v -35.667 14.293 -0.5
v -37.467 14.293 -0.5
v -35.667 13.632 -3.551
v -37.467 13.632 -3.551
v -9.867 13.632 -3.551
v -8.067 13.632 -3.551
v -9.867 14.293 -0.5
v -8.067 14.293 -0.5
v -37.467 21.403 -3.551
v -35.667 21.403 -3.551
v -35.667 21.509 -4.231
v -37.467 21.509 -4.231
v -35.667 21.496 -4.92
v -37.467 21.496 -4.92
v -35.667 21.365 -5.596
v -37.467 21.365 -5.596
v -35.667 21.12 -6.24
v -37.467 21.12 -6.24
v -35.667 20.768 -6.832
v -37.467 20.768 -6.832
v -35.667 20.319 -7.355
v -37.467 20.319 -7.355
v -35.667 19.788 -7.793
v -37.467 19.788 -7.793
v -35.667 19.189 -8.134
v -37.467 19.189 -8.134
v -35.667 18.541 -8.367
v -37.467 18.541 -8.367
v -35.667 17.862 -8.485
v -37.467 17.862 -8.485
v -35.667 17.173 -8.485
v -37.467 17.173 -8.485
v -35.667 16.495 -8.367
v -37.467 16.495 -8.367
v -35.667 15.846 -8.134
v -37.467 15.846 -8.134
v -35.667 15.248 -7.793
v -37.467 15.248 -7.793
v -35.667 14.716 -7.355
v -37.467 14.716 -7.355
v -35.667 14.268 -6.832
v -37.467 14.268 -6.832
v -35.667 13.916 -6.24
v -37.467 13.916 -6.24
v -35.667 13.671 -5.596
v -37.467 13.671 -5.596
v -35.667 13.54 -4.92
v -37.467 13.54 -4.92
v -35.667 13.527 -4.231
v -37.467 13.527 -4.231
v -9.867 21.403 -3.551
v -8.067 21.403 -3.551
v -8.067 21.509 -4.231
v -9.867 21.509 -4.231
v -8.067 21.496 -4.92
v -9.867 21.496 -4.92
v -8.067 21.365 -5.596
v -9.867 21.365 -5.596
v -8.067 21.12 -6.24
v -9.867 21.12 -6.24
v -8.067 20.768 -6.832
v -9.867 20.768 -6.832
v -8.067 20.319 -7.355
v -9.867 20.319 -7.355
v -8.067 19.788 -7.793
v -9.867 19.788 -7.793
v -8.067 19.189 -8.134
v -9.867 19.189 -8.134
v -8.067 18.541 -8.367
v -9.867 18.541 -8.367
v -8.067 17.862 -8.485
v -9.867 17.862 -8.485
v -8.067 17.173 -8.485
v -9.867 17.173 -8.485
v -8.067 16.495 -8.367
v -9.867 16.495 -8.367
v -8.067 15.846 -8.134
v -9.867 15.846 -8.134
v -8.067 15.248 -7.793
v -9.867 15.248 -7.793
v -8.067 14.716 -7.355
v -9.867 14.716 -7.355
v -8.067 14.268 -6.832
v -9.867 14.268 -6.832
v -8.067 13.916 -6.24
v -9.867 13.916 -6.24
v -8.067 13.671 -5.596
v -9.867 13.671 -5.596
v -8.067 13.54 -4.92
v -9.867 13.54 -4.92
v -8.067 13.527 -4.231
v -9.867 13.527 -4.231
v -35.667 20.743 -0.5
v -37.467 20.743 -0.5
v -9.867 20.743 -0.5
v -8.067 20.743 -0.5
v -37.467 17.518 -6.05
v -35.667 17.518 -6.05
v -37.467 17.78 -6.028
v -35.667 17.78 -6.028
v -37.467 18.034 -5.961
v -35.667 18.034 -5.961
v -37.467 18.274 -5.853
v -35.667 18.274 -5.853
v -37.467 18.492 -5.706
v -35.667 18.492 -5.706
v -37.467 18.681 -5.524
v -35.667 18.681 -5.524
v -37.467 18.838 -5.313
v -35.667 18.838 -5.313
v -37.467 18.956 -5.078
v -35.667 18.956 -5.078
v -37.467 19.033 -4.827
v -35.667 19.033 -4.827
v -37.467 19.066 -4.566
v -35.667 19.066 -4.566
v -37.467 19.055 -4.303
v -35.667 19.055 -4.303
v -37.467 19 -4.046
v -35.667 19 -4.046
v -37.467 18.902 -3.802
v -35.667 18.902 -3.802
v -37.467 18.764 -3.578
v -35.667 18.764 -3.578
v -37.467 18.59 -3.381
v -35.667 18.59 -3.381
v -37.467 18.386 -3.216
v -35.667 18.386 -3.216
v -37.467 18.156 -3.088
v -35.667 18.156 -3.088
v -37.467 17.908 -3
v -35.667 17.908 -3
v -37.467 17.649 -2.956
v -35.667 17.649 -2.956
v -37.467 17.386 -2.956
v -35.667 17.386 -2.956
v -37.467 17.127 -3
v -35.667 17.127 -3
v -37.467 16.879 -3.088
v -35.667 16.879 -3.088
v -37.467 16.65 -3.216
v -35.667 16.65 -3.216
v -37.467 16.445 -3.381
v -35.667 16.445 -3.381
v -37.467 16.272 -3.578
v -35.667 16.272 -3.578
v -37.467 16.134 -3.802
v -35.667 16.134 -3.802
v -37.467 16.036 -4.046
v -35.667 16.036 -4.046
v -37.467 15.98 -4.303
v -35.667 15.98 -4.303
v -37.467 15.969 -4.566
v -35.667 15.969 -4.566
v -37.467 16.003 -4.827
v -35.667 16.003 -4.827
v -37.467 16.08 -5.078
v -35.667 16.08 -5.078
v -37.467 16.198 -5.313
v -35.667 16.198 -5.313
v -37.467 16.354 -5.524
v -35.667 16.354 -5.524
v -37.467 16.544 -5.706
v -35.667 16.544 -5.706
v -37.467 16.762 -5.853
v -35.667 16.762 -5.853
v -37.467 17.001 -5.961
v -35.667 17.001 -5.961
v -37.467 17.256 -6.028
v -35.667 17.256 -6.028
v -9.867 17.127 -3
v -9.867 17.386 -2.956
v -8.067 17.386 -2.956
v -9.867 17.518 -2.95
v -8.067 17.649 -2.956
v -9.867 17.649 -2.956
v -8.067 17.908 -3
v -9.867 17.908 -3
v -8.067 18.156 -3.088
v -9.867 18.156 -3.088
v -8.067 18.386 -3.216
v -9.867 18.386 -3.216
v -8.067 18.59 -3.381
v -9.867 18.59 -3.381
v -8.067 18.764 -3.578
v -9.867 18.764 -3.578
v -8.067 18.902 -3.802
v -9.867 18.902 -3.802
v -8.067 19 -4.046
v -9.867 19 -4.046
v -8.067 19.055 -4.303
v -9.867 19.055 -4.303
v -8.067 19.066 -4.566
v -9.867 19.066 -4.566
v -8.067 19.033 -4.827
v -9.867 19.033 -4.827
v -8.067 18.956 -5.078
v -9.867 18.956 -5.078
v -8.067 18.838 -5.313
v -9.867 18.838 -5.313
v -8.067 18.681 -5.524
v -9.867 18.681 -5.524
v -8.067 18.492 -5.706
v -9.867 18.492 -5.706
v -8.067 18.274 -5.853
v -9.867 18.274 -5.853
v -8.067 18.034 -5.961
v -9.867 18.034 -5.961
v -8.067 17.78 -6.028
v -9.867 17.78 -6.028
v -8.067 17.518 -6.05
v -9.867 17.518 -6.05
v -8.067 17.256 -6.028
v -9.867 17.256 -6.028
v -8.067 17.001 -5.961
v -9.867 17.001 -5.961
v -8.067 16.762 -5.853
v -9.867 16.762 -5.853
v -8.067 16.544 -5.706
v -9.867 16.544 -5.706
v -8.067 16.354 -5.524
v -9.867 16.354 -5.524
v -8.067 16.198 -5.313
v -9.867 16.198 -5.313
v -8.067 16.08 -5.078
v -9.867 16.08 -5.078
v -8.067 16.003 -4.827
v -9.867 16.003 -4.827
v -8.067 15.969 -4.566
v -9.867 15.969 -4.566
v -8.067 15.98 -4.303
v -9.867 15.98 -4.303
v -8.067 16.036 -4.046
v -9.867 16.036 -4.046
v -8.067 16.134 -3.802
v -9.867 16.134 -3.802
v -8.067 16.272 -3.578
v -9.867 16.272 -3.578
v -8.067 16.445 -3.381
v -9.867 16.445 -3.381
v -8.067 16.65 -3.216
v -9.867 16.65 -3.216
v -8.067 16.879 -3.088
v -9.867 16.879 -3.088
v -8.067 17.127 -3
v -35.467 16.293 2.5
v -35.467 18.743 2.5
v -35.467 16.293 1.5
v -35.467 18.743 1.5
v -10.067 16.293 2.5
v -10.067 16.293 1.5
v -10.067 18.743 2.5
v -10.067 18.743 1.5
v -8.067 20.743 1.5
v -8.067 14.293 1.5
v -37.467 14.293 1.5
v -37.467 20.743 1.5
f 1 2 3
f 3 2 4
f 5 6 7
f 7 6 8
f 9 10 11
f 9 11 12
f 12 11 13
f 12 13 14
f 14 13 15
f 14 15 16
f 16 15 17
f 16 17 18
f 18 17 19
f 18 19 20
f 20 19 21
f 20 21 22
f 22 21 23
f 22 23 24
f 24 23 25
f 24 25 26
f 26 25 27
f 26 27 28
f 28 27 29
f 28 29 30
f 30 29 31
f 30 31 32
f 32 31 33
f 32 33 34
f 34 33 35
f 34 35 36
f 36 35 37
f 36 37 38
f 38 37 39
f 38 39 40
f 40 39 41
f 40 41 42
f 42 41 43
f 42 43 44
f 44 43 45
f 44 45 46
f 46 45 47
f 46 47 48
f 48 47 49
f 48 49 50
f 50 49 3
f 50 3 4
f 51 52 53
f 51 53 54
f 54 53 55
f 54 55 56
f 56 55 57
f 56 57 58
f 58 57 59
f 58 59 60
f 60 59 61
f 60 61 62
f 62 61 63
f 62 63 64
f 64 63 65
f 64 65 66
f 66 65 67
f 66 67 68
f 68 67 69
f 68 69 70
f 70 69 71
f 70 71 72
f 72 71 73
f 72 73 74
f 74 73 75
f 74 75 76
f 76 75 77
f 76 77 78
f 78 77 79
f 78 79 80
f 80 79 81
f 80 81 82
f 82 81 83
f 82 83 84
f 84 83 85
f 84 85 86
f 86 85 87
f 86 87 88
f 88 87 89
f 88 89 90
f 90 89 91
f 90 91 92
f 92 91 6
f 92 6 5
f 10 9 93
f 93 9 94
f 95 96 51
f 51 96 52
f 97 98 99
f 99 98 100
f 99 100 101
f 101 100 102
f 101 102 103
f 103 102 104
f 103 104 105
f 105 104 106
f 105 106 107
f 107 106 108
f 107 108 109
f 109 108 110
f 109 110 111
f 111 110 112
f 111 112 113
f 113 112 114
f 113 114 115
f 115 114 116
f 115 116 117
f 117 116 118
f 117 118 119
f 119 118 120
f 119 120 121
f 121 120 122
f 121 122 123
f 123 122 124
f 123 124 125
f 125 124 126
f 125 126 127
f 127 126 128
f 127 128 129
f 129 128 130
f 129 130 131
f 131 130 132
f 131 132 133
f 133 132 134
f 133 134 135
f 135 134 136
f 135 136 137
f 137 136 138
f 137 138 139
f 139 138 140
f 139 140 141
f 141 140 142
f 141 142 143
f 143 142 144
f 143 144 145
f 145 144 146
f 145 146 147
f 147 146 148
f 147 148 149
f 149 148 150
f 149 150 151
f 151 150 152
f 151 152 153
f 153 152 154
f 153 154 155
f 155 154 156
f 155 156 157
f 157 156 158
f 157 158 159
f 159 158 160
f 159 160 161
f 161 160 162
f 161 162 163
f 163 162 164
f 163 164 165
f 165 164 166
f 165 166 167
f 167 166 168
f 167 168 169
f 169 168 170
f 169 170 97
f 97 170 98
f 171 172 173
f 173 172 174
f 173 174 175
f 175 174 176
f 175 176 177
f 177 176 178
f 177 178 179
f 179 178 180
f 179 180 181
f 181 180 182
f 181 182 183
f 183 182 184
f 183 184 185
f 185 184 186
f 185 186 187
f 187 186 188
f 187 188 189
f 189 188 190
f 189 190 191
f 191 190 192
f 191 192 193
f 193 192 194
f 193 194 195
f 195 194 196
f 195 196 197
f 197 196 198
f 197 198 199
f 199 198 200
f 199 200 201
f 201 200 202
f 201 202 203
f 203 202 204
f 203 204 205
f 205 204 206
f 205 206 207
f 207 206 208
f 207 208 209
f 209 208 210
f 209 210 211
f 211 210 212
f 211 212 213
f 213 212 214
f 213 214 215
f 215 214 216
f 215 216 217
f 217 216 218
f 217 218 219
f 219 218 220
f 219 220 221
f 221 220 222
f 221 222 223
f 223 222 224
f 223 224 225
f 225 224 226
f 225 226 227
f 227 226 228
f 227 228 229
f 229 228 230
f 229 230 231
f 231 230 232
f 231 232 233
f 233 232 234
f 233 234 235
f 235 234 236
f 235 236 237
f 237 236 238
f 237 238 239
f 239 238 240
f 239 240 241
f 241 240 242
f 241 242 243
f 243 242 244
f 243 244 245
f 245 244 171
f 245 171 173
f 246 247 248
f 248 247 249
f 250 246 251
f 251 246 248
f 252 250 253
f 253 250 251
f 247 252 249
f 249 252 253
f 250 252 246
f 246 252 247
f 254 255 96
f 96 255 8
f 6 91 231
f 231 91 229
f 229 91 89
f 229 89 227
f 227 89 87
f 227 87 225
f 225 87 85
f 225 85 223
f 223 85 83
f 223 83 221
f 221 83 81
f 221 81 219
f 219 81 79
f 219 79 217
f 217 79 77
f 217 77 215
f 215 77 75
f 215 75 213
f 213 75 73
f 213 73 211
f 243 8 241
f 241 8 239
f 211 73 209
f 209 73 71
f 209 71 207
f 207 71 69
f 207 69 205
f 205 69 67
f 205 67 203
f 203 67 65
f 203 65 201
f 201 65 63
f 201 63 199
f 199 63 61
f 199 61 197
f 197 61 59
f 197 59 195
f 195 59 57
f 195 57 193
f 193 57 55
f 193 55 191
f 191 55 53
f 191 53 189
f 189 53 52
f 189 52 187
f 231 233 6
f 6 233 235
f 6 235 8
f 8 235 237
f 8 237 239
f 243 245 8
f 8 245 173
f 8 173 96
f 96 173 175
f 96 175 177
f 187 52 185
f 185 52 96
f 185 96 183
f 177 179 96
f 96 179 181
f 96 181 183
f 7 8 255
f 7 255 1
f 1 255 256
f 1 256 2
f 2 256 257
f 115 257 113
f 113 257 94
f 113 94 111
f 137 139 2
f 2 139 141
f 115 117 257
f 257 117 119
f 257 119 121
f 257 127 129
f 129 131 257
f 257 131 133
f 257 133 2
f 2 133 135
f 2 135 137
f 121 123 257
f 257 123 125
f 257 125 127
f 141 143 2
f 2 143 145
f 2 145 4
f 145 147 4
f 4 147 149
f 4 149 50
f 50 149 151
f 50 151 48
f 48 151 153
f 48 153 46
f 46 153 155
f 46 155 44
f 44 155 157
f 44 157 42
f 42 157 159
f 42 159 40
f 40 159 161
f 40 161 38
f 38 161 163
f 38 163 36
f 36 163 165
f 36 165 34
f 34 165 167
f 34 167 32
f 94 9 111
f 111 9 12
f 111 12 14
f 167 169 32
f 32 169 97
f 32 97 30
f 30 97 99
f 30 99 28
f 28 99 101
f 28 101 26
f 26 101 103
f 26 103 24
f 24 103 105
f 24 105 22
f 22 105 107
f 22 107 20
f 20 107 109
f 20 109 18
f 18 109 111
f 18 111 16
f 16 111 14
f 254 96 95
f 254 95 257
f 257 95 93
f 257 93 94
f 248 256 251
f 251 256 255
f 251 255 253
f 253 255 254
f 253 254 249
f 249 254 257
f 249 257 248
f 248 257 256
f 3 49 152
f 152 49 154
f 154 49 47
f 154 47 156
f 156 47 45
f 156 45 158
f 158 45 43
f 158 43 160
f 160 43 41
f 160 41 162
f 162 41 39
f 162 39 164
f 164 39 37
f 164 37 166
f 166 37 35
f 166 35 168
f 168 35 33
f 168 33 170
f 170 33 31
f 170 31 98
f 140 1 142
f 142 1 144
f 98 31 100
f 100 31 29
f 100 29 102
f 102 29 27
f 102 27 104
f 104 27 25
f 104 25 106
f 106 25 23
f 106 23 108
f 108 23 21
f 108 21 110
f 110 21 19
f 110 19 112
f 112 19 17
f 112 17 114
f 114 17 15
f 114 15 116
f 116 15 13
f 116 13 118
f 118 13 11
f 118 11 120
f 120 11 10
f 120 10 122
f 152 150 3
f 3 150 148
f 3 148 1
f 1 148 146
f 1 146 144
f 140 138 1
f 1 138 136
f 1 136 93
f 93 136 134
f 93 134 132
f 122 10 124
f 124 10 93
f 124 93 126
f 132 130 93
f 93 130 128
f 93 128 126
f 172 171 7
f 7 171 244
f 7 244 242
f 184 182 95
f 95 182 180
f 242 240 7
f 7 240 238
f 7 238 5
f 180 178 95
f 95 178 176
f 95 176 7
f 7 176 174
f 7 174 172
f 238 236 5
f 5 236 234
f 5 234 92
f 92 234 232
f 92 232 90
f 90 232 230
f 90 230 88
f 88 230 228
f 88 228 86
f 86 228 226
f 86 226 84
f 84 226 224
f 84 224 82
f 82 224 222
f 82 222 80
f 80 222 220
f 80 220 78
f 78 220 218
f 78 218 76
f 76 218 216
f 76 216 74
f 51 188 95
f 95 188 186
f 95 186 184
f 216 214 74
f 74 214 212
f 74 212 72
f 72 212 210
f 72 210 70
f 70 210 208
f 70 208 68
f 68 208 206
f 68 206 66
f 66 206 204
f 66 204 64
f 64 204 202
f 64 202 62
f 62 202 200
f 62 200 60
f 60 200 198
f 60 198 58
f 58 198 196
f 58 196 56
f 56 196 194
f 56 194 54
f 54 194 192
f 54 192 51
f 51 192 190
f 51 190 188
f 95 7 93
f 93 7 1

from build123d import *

# Parameters (mm, degrees)
CROQUIS1_W                 = 26.4
CROQUIS1_H                 = 2.95
SALIENTE_EXTRUIR1_DEPTH    = 1.5
SALIENTE_EXTRUIR2_DEPTH    = 1
SALIENTE_EXTRUIR3_START    = 1
SALIENTE_EXTRUIR3_DEPTH    = 1
CROQUIS5_W                 = 26.4
CROQUIS5_H                 = 0.387649526
SALIENTE_EXTRUIR4_DEPTH    = 2.95
CROQUIS7_R                 = 1.5
CORTAR_EXTRUIR1_DEPTH      = 51
CORTAR_EXTRUIR2_START      = 26.4
CROQUIS8_R                 = 3
CORTAR_EXTRUIR2_DEPTH      = 26.4
CROQUIS9_W                 = 0.5
CROQUIS9_H                 = 1
SALIENTE_EXTRUIR5_DEPTH    = 20
CROQUIS11_W                = 1
CROQUIS11_H                = 1.007194245
CROQUIS11_H_2              = 16.042805755
CORTAR_EXTRUIR3_DEPTH      = 40
CROQUIS13_W                = 25.4
CROQUIS13_H                = 2.45
SALIENTE_EXTRUIR6_DEPTH    = 1
CROQUIS14_W                = 4.527159606
CROQUIS14_H                = 1.589204257
CROQUIS14_W_2              = 3.32574087
CROQUIS14_H_2              = 2.189079922
CORTAR_EXTRUIR4_DEPTH      = 21
CORTAR_EXTRUIR5_DEPTH      = 21
CORTAR_EXTRUIR5_DEPTH_BACK = 21
CROQUIS16_W                = 34.398488571
CROQUIS16_H                = 9.421589472
CROQUIS17_W                = 29.4
CROQUIS17_H                = 6.45
SALIENTE_EXTRUIR7_DEPTH    = 2
CROQUIS18_R                = 1.55
SALIENTE_EXTRUIR8_DEPTH    = 29.4
CORTAR_EXTRUIR6_DEPTH      = 12
CORTAR_EXTRUIR6_DEPTH_BACK = 32
CROQUIS19_W                = 25.8
CROQUIS19_H                = 10.578979108


with BuildPart() as part:
    # Croquis1 → Saliente-Extruir1 (new body)
    with BuildSketch(Plane.XY):
        with Locations((-22.767073783, 17.517805755)):
            Rectangle(CROQUIS1_W, CROQUIS1_H)
    extrude(amount=SALIENTE_EXTRUIR1_DEPTH)

    # Croquis2 → Saliente-Extruir2 (add)
    with BuildSketch(Plane(origin=(-9.567073783, 0, 0), x_dir=(0, 0, -1), z_dir=(1, 0, 0))):
        with BuildLine():
            Line((0, 18.992805755), (0.387649526, 18.992805755))
            ThreePointArc((0.387649526, 18.992805755), (6, 17.517805755), (0.387649526, 16.042805755))
            Line((0.387649526, 16.042805755), (0, 16.042805755))
            Line((0, 16.042805755), (-0.5, 16.042805755))
            Line((-0.5, 16.042805755), (-0.5, 18.992805755))
            Line((-0.5, 18.992805755), (0, 18.992805755))
        make_face()
    extrude(amount=SALIENTE_EXTRUIR2_DEPTH)

    # Croquis3 → Saliente-Extruir3 (add)
    with BuildSketch(Plane.ZY.offset(35.967073783).offset(SALIENTE_EXTRUIR3_START)):
        with BuildLine():
            Line((0.5, 18.992805755), (-0.387649526, 18.992805755))
            ThreePointArc((-0.387649526, 18.992805755), (-6, 17.517805755), (-0.387649526, 16.042805755))
            Line((-0.387649526, 16.042805755), (0.5, 16.042805755))
            Line((0.5, 16.042805755), (0.5, 18.992805755))
        make_face()
    extrude(amount=-SALIENTE_EXTRUIR3_DEPTH)

    # Croquis5 → Saliente-Extruir4 (add)
    with BuildSketch(Plane(origin=(0, 18.992805755, 0), x_dir=(1, 0, 0), z_dir=(0, 1, 0))):
        with Locations((-22.767073783, 0.193824763)):
            Rectangle(CROQUIS5_W, CROQUIS5_H)
    extrude(amount=-SALIENTE_EXTRUIR4_DEPTH)

    # Croquis7 → Cortar-Extruir1 (cut)
    with BuildSketch(Plane(origin=(-8.567073783, 0, 0), x_dir=(0, 0, -1), z_dir=(1, 0, 0))):
        with Locations(Location((3, 17.517805755, 0), (0, 0, 180))):
            Circle(CROQUIS7_R)
    extrude(amount=-CORTAR_EXTRUIR1_DEPTH, mode=Mode.SUBTRACT)

    # Croquis8 → Cortar-Extruir2 (cut)
    with BuildSketch(Plane.ZY.offset(9.567073783).offset(CORTAR_EXTRUIR2_START)):
        with Locations((-3, 17.517805755)):
            Circle(CROQUIS8_R)
    extrude(amount=-CORTAR_EXTRUIR2_DEPTH, mode=Mode.SUBTRACT)

    # Croquis9 → Saliente-Extruir5 (add)
    with BuildSketch(Plane(origin=(0, 0, 0), x_dir=(1, 0, 0), z_dir=(0, 1, 0))):
        with Locations((-37.017073783, -1)):
            Rectangle(CROQUIS9_W, CROQUIS9_H)
        with Locations((-8.518741189, -1)):
            Rectangle(CROQUIS9_W, CROQUIS9_H)
    extrude(amount=SALIENTE_EXTRUIR5_DEPTH)

    # Croquis11 → Cortar-Extruir3 (cut)
    with BuildSketch(Plane.ZY.offset(37.267073783)):
        with Locations((1, 19.496402878)):
            Rectangle(CROQUIS11_W, CROQUIS11_H)
        with Locations((1, 8.021402877)):
            Rectangle(CROQUIS11_W, CROQUIS11_H_2)
    extrude(amount=-CORTAR_EXTRUIR3_DEPTH, mode=Mode.SUBTRACT)

    # Croquis13 → Saliente-Extruir6 (add)
    with BuildSketch(Plane.XY.offset(1.5)):
        with Locations((-22.767073783, 17.517805755)):
            Rectangle(CROQUIS13_W, CROQUIS13_H)
    extrude(amount=SALIENTE_EXTRUIR6_DEPTH)

    # Croquis14 → Cortar-Extruir4 (cut)
    with BuildSketch(Plane(origin=(0, 18.992805755, 0), x_dir=(1, 0, 0), z_dir=(0, 1, 0))):
        with Locations((-38.230653586, -1.294602129)):
            Rectangle(CROQUIS14_W, CROQUIS14_H)
        with Locations((-7.904203348, -1.594539961)):
            Rectangle(CROQUIS14_W_2, CROQUIS14_H_2)
    extrude(amount=-CORTAR_EXTRUIR4_DEPTH, mode=Mode.SUBTRACT)

    # Croquis16 → Cortar-Extruir5 (cut, two sides: drawn at the far end of the back side and taken through both)
    with BuildSketch(Plane(origin=(0, 18.992805755, 0), x_dir=(1, 0, 0), z_dir=(0, 1, 0)).offset(-CORTAR_EXTRUIR5_DEPTH_BACK)):
        with Locations((-24.715099431, 3.210794736)):
            Rectangle(CROQUIS16_W, CROQUIS16_H)
    extrude(amount=CORTAR_EXTRUIR5_DEPTH + CORTAR_EXTRUIR5_DEPTH_BACK, mode=Mode.SUBTRACT)

    # Croquis17 → Saliente-Extruir7 (add)
    with BuildSketch(Plane(origin=(0, 0, 1.5), x_dir=(-1, 0, 0), z_dir=(0, 0, -1))):
        with Locations((22.767073783, 17.517805755)):
            Rectangle(CROQUIS17_W, CROQUIS17_H)
    extrude(amount=SALIENTE_EXTRUIR7_DEPTH)

    # Croquis18 → Saliente-Extruir8 (add)
    with BuildSketch(Plane(origin=(-8.067073783, 0, 0), x_dir=(0, 0, -1), z_dir=(1, 0, 0))):
        with BuildLine():
            Line((0.5, 20.742805755), (3.55055626, 21.40349187))
            ThreePointArc((3.55055626, 21.40349187), (8.5, 17.517805755), (3.55055626, 13.63211964))
            Line((3.55055626, 13.63211964), (0.5, 14.292805755))
            Line((0.5, 14.292805755), (0.5, 20.742805755))
        make_face()
        with Locations((4.5, 17.517805755)):
            Circle(CROQUIS18_R, mode=Mode.SUBTRACT)
    extrude(amount=-SALIENTE_EXTRUIR8_DEPTH)

    # Croquis19 → Cortar-Extruir6 (cut, two sides: drawn at the far end of the back side and taken through both)
    with BuildSketch(Plane(origin=(0, 20.742805755, 0), x_dir=(1, 0, 0), z_dir=(0, 1, 0)).offset(-CORTAR_EXTRUIR6_DEPTH_BACK)):
        with Locations((-22.767073783, 5.789489554)):
            Rectangle(CROQUIS19_W, CROQUIS19_H)
    extrude(amount=CORTAR_EXTRUIR6_DEPTH + CORTAR_EXTRUIR6_DEPTH_BACK, mode=Mode.SUBTRACT)


solid = part.part
